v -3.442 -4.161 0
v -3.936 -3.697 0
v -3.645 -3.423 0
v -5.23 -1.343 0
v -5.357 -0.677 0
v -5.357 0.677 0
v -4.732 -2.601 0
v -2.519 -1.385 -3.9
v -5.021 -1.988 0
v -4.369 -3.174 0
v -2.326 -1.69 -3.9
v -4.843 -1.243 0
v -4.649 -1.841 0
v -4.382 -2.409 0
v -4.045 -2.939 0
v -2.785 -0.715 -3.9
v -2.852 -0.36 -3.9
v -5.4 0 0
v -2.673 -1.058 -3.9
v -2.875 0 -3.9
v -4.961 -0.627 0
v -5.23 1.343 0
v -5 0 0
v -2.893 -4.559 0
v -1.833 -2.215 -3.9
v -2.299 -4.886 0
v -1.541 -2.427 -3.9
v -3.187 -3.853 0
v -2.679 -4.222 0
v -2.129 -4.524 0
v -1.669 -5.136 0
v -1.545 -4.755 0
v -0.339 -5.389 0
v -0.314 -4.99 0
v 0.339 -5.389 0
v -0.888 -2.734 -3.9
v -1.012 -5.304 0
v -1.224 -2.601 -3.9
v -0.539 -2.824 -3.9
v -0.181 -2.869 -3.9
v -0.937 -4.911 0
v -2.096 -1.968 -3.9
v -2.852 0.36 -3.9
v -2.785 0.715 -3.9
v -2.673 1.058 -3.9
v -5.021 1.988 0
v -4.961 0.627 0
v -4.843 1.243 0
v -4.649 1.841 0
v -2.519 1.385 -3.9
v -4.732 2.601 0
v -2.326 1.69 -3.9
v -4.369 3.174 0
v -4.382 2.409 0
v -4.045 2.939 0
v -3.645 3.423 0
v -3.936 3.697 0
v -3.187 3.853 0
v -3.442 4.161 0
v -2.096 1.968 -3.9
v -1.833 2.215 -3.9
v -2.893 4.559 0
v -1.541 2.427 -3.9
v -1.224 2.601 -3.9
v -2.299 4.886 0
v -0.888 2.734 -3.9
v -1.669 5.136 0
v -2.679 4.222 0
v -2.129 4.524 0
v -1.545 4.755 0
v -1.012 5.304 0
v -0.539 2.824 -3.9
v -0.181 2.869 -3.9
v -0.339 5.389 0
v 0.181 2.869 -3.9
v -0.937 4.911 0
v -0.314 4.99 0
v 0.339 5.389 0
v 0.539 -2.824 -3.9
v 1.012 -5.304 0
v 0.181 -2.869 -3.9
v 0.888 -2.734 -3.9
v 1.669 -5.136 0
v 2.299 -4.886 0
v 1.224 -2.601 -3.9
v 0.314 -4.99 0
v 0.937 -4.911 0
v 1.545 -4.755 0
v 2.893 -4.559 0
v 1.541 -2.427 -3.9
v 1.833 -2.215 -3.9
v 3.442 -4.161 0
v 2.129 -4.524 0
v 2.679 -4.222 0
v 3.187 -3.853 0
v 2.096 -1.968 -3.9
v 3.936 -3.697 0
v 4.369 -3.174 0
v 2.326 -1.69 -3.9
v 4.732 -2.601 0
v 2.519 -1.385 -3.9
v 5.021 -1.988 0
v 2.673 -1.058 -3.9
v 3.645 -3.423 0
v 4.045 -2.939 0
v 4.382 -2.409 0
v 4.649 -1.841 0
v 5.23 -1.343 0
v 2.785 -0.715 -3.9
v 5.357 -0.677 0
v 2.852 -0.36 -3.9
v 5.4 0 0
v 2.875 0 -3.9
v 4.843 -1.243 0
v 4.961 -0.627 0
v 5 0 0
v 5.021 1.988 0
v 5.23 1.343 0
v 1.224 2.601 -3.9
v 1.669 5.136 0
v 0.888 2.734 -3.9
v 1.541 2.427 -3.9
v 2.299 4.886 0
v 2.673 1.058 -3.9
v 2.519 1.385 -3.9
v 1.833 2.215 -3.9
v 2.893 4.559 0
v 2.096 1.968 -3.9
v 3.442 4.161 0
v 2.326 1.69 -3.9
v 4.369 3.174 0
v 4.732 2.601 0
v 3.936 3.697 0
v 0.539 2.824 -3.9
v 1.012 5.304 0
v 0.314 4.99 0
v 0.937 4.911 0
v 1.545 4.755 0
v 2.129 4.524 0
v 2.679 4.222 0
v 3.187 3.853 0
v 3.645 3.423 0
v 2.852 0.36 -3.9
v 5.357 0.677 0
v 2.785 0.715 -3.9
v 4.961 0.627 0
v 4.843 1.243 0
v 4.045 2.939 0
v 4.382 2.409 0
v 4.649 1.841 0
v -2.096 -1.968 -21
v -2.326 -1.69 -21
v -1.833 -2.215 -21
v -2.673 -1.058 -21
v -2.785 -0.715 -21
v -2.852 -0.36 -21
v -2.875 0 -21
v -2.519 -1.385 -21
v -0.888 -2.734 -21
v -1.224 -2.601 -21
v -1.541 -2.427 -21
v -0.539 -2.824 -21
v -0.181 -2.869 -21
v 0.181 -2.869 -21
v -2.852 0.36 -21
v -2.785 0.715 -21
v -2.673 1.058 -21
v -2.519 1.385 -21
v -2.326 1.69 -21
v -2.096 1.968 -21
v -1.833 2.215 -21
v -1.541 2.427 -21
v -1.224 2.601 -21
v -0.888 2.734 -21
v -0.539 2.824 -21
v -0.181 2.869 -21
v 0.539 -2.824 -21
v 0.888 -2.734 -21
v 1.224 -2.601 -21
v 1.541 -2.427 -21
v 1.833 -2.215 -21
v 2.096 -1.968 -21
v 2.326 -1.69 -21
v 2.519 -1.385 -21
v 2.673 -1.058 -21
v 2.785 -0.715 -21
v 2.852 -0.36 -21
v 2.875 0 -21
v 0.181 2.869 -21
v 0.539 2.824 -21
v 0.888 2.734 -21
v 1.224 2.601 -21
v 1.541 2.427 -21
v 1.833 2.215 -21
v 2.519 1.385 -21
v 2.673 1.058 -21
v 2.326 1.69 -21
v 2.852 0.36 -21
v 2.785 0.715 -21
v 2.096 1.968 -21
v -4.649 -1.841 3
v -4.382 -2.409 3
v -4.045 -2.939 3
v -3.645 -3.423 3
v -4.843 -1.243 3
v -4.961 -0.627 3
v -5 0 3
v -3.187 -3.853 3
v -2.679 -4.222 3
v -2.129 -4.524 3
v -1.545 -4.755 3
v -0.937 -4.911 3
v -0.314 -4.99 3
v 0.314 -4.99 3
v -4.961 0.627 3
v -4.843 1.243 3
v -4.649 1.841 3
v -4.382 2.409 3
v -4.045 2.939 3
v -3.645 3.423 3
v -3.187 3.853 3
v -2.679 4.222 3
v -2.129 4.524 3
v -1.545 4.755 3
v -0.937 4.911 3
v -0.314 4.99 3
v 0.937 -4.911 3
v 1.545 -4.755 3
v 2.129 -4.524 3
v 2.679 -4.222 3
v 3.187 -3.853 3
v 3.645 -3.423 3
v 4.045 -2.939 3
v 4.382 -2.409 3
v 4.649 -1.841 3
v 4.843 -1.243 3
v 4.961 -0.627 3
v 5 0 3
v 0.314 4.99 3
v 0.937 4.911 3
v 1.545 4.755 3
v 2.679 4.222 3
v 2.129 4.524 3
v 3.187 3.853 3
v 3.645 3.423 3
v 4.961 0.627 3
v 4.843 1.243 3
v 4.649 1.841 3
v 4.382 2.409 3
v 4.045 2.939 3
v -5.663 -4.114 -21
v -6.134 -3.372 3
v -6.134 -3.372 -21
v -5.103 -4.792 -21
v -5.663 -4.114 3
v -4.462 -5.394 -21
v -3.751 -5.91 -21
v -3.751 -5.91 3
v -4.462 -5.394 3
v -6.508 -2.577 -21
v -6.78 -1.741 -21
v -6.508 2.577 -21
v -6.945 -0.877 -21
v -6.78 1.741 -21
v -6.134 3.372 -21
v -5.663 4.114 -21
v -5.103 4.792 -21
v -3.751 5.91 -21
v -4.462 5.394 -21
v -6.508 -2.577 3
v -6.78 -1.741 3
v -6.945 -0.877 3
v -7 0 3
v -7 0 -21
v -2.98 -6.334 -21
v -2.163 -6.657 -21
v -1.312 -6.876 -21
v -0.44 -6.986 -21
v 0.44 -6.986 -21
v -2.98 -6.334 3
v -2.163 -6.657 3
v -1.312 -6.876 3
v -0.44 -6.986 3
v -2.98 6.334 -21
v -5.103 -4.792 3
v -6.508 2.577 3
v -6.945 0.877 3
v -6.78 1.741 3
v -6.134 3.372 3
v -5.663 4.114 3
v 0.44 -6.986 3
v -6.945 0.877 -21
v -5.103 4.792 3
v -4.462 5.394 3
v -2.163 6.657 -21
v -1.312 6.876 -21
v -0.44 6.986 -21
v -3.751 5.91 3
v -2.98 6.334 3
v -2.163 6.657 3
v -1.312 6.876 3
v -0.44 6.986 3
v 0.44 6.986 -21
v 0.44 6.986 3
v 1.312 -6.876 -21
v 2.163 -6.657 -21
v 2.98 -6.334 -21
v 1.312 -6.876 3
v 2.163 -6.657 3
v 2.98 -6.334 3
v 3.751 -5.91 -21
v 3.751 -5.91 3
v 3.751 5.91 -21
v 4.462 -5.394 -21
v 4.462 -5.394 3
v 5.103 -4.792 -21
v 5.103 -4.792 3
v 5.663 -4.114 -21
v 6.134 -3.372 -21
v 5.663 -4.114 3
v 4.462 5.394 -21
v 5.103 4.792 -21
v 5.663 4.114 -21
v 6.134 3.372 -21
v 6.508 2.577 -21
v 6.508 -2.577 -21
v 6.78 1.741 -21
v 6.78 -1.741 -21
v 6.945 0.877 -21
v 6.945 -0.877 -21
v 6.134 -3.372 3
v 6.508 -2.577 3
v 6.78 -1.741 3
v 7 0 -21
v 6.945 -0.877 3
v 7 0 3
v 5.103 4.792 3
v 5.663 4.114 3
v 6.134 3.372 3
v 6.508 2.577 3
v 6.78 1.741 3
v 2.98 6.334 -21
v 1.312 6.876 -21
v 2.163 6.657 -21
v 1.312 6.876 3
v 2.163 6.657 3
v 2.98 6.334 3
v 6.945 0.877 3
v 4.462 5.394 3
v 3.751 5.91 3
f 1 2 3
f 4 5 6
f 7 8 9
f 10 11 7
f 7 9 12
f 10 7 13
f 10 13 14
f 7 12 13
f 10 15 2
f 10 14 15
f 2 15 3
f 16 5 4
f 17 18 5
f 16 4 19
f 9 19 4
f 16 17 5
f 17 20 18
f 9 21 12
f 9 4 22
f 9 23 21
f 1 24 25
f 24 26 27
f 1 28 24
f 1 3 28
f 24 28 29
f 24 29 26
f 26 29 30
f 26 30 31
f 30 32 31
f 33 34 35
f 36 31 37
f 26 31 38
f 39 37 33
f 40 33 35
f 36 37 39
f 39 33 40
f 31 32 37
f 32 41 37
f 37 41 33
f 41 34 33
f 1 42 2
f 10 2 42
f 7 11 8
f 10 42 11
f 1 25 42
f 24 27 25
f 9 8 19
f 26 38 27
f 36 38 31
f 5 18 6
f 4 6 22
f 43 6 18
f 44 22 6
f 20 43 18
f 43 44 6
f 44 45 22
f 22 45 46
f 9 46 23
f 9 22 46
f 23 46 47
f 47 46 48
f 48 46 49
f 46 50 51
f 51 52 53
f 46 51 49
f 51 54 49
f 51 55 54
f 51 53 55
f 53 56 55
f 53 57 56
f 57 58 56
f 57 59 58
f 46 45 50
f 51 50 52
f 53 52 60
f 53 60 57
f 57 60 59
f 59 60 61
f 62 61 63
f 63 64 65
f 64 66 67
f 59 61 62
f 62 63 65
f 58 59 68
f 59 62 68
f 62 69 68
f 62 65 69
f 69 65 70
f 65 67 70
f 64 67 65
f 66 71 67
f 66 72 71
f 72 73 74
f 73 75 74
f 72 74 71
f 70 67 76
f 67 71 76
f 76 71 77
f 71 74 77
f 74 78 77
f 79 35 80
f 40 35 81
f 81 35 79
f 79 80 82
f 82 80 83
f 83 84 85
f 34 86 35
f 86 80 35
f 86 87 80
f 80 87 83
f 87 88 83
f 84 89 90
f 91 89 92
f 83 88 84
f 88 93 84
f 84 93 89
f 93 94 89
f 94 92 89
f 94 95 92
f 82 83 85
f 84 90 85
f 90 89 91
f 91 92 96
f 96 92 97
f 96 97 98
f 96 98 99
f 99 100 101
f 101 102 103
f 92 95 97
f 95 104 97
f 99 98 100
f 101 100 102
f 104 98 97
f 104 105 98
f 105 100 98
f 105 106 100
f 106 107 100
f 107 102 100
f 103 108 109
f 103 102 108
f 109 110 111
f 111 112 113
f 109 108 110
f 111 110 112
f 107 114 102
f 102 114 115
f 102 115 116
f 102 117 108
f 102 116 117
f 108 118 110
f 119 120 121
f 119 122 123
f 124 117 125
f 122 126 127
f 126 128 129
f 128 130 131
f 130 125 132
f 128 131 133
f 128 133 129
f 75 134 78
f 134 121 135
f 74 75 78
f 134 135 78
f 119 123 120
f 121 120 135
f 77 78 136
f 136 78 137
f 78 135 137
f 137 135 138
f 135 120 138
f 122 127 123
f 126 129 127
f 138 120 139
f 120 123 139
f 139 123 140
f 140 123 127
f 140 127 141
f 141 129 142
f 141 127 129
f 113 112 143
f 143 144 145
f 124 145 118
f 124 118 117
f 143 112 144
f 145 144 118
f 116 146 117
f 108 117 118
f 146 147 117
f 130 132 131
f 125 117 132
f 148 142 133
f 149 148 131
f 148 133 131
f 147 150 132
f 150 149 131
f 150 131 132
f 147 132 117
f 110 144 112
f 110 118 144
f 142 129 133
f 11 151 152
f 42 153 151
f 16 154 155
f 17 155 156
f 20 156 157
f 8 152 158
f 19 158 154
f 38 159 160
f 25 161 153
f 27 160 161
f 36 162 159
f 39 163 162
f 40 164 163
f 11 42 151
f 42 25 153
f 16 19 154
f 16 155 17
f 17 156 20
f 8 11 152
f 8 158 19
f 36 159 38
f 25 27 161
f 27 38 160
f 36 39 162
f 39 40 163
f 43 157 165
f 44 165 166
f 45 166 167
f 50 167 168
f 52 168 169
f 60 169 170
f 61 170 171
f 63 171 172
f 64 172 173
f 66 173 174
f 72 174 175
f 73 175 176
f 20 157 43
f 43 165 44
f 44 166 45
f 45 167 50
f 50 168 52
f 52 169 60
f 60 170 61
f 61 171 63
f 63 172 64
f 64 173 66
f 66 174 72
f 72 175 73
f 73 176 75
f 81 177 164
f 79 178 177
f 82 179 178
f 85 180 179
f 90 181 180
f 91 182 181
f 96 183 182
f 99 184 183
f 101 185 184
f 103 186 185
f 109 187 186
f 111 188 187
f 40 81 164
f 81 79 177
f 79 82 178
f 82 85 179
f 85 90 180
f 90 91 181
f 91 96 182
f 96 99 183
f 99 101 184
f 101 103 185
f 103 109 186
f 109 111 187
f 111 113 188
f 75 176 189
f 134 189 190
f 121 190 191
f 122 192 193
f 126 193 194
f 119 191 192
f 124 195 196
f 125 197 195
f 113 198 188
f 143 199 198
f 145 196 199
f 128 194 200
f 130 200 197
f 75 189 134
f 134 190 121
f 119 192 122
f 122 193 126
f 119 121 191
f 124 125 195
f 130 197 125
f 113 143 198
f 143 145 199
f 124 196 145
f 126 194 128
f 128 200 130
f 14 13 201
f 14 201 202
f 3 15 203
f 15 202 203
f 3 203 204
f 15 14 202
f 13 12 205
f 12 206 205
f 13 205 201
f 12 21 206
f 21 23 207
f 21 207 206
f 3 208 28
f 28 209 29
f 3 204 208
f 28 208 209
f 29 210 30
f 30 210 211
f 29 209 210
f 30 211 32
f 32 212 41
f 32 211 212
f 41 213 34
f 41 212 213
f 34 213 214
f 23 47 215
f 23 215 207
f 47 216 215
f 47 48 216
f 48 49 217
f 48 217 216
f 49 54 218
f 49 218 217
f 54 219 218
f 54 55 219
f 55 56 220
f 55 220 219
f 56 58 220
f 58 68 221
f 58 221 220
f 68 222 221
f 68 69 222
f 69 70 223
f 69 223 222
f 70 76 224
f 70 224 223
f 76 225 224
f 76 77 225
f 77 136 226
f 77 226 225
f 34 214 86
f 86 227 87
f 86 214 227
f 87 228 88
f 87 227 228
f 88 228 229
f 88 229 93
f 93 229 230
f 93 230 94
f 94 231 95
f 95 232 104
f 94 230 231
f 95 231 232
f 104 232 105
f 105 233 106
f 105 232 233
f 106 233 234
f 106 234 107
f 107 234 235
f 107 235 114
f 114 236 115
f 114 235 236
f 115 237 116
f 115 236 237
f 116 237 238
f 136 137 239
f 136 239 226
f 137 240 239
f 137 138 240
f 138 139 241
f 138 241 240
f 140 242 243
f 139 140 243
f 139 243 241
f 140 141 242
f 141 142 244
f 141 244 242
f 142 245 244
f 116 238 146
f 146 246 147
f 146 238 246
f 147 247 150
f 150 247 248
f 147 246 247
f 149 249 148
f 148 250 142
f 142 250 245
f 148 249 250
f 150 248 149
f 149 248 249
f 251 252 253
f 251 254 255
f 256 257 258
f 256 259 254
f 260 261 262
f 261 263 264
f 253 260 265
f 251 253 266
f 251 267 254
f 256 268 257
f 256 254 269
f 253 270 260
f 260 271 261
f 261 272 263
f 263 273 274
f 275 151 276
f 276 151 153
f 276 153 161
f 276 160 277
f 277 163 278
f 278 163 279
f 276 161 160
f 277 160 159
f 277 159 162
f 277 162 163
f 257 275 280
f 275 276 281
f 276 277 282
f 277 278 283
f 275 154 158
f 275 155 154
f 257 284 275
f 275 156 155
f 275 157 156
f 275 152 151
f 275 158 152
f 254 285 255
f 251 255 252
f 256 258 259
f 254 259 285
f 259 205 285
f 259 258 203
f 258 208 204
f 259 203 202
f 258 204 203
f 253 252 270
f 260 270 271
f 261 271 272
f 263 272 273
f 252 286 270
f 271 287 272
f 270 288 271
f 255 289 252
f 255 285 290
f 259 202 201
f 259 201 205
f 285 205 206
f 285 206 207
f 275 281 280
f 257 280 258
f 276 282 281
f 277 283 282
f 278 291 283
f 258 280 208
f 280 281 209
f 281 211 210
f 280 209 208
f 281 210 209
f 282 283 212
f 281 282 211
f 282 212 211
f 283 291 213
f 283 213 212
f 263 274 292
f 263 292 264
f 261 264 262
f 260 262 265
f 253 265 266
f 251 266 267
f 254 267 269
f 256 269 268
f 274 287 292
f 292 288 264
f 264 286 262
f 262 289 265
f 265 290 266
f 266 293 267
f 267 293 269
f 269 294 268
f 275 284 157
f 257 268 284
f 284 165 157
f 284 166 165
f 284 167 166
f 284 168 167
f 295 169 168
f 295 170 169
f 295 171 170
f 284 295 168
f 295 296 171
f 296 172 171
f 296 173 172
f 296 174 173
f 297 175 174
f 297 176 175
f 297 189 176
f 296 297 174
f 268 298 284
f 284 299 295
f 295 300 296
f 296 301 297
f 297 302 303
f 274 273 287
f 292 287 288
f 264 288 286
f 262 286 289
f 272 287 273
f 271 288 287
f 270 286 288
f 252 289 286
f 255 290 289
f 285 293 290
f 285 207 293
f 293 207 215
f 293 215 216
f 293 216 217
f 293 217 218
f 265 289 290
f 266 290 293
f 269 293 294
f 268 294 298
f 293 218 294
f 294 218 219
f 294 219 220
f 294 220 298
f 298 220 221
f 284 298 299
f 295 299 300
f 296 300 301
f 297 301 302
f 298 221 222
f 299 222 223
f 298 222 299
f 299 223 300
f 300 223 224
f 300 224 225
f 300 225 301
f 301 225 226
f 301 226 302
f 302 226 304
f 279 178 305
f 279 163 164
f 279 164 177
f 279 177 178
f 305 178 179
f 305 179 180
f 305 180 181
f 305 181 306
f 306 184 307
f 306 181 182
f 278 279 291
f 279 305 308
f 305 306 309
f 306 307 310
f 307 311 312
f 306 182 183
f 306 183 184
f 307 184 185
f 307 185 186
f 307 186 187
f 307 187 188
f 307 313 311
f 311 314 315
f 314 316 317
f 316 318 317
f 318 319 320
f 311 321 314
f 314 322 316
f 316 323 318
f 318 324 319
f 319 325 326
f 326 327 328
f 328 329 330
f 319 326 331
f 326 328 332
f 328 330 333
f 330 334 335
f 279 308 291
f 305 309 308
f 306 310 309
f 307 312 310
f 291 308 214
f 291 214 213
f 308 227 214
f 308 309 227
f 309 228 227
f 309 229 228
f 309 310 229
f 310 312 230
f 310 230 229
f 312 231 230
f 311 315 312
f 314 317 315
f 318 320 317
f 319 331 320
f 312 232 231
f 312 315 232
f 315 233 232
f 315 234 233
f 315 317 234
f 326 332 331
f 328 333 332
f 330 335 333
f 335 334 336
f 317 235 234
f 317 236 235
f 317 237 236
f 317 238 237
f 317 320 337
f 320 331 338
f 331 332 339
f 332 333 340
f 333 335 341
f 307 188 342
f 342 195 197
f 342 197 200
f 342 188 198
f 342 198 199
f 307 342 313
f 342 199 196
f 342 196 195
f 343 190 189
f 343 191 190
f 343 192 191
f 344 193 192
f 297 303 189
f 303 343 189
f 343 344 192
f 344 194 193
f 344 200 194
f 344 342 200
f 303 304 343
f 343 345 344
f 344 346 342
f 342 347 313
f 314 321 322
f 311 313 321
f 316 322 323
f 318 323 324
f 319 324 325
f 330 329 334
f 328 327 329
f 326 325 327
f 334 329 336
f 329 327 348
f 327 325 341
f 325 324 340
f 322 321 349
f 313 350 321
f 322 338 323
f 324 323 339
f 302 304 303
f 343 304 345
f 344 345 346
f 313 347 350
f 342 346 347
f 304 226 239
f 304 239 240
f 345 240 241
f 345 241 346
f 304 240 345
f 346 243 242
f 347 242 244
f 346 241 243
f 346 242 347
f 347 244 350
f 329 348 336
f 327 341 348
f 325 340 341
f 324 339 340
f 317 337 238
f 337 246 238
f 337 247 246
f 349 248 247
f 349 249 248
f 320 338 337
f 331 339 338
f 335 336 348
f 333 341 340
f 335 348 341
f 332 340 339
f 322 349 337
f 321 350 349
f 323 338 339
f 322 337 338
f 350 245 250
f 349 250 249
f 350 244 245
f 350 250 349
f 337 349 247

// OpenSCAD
$fn = 50;


difference() {
	union() {
		translate(v = [0, 0, -21.0000000000]) {
			cylinder(h = 24, r = 7.0000000000);
		}
	}
	union() {
		translate(v = [0, 0, 0]) {
			rotate(a = [0, 0, 0]) {
				difference() {
					union() {
						translate(v = [0, 0, -24.0000000000]) {
							cylinder(h = 24, r = 2.6000000000);
						}
						translate(v = [0, 0, -3.9000000000]) {
							cylinder(h = 3.9000000000, r1 = 2.8750000000, r2 = 5.4000000000);
						}
						translate(v = [0, 0, -24.0000000000]) {
							cylinder(h = 24, r = 2.8750000000);
						}
						translate(v = [0, 0, -24.0000000000]) {
							cylinder(h = 24, r = 2.6000000000);
						}
					}
					union();
				}
			}
		}
		#cylinder(h = 3, r = 5.0000000000);
	}
}
